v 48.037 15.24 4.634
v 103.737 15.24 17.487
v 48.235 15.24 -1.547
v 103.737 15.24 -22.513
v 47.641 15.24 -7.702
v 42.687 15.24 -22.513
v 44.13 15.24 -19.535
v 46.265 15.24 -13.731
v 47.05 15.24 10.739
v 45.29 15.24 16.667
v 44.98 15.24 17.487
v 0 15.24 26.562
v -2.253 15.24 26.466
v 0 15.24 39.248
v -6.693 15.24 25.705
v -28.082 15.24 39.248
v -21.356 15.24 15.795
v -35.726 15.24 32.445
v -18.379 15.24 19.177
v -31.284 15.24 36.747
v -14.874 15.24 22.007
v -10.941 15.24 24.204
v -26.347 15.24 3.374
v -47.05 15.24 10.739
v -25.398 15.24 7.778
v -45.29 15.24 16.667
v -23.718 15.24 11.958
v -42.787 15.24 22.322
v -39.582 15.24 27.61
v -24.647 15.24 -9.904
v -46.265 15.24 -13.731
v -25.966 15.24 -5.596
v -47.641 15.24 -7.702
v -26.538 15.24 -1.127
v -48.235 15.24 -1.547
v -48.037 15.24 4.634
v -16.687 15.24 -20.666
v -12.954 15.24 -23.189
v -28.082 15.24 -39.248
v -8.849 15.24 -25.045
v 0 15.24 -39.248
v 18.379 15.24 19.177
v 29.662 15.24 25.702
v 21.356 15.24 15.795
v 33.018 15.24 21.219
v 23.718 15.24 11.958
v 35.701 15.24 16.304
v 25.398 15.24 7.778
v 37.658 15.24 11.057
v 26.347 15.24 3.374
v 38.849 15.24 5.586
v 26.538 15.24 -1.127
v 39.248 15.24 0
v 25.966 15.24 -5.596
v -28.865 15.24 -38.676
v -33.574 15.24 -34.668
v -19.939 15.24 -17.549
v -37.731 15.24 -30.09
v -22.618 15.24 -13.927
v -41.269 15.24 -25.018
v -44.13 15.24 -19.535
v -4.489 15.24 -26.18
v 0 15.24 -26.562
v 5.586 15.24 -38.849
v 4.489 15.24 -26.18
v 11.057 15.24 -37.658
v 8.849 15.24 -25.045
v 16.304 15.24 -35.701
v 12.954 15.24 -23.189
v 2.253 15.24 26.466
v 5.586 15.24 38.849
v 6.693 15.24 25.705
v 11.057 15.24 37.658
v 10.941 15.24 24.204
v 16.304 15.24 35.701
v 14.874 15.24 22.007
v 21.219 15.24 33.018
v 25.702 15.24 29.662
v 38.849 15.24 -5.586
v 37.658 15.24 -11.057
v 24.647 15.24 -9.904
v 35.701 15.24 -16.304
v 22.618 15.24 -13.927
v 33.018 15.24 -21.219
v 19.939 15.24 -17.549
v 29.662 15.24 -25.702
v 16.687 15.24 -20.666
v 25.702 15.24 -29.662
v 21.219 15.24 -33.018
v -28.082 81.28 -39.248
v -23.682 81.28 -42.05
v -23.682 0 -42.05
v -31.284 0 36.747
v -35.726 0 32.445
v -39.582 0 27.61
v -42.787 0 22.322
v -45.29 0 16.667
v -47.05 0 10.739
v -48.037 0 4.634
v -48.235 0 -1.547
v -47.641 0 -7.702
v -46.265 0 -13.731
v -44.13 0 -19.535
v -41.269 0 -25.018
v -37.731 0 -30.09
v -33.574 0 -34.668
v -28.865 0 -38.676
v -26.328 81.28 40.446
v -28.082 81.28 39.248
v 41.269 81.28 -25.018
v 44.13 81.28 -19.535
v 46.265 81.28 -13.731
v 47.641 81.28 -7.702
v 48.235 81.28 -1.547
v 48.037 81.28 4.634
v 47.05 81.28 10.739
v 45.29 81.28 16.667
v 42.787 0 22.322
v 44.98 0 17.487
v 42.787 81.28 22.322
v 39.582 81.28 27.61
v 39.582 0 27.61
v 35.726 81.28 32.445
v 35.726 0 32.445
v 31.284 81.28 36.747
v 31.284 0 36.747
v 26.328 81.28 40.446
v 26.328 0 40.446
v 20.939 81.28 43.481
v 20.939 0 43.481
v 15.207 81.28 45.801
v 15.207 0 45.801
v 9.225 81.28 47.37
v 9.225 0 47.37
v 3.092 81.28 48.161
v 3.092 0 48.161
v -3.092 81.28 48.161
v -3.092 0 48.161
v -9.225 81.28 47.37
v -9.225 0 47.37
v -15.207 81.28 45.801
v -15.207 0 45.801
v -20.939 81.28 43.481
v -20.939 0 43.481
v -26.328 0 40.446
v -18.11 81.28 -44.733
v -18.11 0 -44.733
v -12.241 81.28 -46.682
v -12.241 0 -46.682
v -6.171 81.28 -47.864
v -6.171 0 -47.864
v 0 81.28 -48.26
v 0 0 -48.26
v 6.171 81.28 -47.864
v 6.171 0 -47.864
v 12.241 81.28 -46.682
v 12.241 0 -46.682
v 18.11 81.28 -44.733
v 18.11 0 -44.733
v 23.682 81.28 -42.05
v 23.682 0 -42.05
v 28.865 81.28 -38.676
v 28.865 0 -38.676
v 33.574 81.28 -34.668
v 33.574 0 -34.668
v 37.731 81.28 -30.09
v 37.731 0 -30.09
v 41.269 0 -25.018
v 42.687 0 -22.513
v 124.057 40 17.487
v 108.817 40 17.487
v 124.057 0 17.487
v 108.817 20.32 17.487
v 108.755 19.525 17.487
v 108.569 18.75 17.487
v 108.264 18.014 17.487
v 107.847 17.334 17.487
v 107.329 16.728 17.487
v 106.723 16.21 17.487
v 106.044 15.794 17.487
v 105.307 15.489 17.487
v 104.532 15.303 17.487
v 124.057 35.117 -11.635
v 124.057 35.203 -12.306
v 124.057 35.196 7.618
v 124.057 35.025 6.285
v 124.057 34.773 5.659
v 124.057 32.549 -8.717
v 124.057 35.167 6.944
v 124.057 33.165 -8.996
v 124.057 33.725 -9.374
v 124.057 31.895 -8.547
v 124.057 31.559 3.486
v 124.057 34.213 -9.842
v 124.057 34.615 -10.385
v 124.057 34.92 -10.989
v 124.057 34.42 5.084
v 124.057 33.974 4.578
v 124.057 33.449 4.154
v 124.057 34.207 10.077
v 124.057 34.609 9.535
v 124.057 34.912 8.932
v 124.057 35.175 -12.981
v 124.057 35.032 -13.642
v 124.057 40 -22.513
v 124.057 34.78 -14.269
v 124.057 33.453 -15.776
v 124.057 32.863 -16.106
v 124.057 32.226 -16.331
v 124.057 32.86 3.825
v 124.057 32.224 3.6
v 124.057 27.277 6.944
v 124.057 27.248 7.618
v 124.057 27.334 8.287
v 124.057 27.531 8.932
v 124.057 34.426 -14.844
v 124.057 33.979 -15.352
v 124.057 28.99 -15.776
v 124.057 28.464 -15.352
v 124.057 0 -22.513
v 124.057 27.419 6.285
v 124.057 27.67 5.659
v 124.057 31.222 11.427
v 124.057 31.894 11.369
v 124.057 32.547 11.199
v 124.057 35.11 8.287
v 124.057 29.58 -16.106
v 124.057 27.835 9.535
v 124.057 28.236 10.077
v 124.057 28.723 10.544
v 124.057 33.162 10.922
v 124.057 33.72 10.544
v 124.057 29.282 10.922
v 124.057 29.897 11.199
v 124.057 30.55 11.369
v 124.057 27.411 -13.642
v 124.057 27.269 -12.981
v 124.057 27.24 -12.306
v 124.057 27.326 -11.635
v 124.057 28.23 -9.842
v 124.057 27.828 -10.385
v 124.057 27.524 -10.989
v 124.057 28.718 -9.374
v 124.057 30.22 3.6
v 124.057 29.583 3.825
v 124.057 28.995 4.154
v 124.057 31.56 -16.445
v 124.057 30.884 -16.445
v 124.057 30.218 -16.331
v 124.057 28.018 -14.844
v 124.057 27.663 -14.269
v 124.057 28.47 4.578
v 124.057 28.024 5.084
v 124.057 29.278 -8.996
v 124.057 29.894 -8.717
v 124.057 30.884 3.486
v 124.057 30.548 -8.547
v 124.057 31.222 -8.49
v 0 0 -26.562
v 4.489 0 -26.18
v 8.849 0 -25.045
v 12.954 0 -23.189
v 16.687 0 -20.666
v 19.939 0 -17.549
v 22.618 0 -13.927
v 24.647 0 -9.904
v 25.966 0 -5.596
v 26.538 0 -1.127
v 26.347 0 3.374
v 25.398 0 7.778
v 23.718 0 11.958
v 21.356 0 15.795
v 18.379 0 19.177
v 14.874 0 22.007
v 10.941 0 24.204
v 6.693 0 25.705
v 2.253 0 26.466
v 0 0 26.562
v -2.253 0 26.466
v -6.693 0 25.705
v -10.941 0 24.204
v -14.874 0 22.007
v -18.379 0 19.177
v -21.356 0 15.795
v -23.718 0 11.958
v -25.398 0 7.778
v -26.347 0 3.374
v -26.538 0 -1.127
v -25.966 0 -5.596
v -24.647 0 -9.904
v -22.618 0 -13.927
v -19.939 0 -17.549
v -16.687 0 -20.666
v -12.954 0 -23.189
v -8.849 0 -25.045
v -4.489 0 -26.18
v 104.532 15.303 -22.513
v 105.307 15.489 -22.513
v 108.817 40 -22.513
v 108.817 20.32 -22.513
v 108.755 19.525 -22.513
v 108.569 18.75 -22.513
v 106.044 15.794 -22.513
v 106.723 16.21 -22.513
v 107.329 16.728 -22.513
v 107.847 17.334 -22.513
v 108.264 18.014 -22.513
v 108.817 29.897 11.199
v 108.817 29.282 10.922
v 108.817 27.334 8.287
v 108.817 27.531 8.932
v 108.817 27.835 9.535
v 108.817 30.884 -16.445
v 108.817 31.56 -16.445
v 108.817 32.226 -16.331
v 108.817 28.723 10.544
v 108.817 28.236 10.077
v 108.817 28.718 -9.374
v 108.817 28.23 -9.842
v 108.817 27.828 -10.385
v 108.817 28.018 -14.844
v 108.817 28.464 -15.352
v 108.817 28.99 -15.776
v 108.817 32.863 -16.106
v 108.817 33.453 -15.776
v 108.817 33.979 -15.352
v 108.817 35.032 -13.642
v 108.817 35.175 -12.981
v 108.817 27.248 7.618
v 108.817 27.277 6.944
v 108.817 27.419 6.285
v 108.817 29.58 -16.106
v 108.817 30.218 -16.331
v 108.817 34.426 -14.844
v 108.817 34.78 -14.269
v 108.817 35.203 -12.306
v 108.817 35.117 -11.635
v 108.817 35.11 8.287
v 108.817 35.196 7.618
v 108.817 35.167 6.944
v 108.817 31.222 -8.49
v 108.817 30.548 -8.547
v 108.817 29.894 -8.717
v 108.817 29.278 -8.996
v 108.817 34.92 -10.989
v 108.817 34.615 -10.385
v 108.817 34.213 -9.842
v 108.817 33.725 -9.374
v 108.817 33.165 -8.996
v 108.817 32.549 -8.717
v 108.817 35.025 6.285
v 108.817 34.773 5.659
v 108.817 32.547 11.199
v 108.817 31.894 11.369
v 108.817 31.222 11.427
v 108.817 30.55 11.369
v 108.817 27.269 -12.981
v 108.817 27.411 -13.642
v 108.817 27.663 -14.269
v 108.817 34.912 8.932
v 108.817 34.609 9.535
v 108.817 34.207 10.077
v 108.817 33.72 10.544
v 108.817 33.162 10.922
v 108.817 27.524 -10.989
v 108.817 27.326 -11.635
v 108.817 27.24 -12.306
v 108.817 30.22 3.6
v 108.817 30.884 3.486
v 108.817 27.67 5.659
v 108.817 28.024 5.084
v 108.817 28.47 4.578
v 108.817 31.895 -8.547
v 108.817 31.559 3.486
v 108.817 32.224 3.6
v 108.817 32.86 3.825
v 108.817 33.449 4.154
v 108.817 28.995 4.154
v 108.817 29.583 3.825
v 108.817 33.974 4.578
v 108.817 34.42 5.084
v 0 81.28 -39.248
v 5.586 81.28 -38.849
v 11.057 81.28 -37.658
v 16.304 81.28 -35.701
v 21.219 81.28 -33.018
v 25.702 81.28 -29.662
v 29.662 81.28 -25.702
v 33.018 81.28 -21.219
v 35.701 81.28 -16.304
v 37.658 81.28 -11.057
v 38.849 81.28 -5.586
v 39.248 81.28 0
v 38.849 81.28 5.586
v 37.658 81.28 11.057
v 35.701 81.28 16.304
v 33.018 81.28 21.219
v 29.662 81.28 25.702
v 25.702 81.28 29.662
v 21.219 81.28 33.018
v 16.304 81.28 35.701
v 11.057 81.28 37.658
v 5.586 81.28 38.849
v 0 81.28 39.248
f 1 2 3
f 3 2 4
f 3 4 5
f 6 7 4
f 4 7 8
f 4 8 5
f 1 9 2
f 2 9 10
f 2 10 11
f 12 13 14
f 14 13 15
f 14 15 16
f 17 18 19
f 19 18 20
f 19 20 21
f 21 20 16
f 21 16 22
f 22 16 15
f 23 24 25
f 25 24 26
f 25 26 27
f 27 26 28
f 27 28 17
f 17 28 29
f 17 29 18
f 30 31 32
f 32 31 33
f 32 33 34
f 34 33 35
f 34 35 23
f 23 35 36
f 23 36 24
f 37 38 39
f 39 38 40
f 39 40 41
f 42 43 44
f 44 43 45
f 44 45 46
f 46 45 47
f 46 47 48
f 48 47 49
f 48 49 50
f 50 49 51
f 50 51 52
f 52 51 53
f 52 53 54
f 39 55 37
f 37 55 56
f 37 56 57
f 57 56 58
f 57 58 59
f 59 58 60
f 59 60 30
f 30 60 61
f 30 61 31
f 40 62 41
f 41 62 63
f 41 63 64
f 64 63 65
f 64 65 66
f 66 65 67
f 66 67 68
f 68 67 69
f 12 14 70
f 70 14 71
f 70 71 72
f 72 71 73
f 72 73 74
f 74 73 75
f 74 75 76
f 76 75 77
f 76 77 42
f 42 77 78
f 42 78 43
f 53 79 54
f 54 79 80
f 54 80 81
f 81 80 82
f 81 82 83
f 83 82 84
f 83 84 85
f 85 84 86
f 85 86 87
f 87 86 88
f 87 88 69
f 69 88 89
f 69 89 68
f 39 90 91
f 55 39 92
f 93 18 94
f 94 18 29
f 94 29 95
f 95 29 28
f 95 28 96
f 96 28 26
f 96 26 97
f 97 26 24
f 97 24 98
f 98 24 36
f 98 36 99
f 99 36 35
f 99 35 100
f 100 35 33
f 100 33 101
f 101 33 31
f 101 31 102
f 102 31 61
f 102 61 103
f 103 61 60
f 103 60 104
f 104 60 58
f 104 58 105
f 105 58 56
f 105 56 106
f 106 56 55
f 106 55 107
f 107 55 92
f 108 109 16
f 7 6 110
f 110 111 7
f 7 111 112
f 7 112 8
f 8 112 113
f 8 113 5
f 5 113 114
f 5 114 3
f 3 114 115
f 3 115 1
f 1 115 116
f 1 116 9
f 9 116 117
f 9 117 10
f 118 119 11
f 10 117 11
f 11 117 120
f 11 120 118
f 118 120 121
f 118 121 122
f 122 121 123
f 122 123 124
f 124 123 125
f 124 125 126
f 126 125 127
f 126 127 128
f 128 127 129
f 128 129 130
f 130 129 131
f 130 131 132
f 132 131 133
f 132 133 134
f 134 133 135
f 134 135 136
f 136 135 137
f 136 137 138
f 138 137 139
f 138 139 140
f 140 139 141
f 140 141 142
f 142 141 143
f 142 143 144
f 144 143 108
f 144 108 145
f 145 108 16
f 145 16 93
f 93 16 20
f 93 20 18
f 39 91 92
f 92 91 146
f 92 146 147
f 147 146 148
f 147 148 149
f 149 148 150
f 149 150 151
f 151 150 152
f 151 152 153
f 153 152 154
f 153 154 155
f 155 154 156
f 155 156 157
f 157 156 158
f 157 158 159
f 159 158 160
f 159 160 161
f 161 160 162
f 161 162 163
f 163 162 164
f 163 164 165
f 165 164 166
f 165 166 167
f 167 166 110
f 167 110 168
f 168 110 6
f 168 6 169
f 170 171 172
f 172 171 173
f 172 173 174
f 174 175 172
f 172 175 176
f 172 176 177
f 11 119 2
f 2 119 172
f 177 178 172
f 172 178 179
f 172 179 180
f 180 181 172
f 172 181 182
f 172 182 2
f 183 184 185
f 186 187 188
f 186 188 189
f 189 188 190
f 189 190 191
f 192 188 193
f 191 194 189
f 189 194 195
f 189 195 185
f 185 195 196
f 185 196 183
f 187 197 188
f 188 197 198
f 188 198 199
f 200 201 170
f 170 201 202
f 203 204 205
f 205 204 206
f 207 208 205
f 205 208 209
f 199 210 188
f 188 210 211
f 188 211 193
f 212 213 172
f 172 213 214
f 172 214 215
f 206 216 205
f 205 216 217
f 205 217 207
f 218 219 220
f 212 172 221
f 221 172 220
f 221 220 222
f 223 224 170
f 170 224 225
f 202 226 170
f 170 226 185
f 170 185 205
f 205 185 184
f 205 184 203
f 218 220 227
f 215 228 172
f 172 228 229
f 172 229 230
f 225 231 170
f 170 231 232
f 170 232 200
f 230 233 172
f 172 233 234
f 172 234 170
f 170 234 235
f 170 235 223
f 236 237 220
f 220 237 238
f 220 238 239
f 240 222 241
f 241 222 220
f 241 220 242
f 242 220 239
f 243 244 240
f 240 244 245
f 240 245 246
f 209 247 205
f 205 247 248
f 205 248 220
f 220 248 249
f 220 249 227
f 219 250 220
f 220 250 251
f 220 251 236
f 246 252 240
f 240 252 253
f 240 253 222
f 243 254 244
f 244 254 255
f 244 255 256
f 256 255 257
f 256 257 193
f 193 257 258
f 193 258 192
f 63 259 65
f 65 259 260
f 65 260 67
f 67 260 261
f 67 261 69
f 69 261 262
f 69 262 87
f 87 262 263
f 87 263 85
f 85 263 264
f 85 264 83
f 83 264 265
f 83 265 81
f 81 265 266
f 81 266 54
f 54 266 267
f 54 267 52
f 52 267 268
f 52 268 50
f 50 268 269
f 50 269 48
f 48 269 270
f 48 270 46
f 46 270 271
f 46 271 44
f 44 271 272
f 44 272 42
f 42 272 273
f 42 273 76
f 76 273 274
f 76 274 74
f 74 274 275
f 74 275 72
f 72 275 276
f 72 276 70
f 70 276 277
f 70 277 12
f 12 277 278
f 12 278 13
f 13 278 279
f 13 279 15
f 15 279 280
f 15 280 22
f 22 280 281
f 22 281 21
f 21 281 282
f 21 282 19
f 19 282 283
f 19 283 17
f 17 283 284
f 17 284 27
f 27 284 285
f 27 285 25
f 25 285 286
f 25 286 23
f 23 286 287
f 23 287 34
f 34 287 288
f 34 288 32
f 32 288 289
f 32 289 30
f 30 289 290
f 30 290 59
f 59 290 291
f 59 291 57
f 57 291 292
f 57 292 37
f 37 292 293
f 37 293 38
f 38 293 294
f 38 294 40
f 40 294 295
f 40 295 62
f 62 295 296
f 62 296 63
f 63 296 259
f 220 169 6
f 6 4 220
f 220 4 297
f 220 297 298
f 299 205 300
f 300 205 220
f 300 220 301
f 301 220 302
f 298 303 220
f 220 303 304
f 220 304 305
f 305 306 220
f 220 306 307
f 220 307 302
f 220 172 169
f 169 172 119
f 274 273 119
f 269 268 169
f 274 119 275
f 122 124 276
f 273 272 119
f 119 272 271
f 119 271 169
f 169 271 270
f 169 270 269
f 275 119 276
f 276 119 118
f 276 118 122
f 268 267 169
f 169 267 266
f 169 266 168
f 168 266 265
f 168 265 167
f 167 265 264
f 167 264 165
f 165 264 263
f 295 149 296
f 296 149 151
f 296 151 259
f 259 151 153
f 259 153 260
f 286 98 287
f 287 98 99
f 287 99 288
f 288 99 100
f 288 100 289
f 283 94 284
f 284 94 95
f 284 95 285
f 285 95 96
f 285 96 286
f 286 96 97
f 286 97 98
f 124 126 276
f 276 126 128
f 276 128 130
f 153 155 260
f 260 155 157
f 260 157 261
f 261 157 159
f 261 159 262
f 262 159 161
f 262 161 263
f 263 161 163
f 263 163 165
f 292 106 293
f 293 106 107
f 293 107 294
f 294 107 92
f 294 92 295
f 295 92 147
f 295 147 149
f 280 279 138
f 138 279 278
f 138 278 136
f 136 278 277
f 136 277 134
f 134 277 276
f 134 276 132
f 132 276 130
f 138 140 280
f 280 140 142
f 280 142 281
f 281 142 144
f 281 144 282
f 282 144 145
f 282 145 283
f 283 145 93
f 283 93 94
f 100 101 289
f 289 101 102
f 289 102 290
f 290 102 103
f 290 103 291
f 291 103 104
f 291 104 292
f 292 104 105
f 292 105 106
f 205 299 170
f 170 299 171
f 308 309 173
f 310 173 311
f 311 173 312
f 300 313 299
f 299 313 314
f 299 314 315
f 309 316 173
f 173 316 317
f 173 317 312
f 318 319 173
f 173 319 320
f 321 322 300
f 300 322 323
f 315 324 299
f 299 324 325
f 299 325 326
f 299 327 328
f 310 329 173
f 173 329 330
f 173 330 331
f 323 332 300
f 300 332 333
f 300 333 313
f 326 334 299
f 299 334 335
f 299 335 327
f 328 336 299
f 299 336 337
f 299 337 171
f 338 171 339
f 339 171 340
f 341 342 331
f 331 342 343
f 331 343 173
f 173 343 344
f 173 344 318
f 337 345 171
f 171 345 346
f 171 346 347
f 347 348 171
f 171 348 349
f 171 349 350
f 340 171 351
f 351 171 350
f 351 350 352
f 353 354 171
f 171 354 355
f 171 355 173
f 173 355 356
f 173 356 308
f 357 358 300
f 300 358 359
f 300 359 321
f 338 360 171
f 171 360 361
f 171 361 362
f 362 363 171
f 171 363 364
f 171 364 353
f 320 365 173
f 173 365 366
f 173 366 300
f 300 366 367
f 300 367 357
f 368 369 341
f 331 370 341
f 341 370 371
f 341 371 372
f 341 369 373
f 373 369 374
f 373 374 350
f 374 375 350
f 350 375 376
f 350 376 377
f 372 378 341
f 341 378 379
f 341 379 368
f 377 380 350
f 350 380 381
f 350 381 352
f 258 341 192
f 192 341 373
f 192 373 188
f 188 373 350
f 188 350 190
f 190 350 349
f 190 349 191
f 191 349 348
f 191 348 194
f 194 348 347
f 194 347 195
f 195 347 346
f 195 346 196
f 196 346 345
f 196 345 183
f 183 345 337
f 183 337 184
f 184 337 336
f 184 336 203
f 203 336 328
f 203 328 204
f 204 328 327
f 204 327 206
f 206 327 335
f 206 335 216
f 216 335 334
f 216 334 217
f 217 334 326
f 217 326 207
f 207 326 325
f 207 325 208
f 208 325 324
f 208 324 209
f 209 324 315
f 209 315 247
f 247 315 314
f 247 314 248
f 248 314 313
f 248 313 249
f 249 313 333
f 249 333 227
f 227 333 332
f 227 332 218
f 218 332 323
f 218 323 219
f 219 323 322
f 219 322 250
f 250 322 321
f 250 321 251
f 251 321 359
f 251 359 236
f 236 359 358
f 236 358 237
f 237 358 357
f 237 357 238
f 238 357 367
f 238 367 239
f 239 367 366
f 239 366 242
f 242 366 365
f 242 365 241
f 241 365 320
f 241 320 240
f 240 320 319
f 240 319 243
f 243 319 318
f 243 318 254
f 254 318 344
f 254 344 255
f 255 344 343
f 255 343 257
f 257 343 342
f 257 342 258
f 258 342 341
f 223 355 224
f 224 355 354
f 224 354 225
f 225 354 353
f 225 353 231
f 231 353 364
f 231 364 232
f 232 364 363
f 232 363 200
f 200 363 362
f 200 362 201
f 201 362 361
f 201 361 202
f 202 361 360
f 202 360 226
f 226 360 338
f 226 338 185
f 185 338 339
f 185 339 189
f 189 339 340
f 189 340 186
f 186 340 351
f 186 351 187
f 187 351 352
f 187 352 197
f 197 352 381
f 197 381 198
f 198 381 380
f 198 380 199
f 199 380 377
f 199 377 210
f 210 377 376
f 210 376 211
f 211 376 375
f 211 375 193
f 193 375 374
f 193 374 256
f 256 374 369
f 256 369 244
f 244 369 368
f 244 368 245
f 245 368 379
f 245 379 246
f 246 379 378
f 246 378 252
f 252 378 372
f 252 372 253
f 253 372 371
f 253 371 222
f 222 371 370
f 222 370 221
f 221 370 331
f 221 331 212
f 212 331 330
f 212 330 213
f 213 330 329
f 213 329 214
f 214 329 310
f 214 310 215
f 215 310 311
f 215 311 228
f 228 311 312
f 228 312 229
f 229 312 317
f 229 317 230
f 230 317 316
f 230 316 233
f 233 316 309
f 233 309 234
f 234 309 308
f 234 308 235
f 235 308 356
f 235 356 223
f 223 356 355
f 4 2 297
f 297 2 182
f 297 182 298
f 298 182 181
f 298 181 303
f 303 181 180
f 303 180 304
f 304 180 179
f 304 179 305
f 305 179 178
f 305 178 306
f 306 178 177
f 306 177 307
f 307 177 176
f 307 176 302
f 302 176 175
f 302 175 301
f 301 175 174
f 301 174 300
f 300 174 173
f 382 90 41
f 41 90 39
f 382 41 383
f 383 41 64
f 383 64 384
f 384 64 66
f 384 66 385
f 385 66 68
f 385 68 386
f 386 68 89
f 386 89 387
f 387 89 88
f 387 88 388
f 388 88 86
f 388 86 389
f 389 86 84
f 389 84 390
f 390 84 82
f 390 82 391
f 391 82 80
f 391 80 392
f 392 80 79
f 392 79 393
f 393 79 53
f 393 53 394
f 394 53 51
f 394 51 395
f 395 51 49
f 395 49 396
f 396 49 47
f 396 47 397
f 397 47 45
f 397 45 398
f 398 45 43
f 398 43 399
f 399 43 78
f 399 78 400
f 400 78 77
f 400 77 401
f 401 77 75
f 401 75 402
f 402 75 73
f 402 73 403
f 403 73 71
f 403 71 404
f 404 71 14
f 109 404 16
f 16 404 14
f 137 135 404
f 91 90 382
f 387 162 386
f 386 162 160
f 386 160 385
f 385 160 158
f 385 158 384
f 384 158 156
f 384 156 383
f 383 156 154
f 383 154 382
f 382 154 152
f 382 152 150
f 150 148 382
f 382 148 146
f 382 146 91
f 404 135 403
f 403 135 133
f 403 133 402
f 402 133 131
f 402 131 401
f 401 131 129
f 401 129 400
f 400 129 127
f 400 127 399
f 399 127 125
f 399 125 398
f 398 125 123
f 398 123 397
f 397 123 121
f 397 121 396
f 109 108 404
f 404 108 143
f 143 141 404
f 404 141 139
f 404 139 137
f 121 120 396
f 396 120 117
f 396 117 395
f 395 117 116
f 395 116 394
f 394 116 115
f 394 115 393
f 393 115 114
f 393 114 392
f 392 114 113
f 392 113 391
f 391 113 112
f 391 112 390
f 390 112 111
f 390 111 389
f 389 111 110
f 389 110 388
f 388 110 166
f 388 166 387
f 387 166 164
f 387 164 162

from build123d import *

# Parameters (mm, degrees)
SKETCH1_R           = 48.26
SKETCH1_R_2         = 26.56205
SKETCH1_W           = 81.370000074
SKETCH1_H           = 40
BOSS_EXTRUDE2_DEPTH = 15.24
SKETCH2_W           = 15.24
SKETCH2_H           = 24.76
BOSS_EXTRUDE3_DEPTH = 40
SKETCH3_R           = 3.9773733
SKETCH3_R_2         = 3.985133
CUT_EXTRUDE1_DEPTH  = 170.12215531
FILLET1_R           = 5.08
BOSS_EXTRUDE4_DEPTH = 66.04


with BuildPart() as part:
    # Sketch1 → Boss-Extrude2 (new body)
    # profile 1 of 2: a face of its own
    with BuildSketch(Plane(origin=(0, 0, 0), x_dir=(1, 0, 0), z_dir=(0, 1, 0))):
        Circle(SKETCH1_R)
        with Locations(Location((0, 0, 0), (0, 0, 90))):
            Circle(SKETCH1_R_2, mode=Mode.SUBTRACT)
    # profile 2 of 2: a face of its own
    with BuildSketch(Plane(origin=(0, 0, 0), x_dir=(1, 0, 0), z_dir=(0, 1, 0))):
        with Locations((83.372292456, 2.512722314)):
            Rectangle(SKETCH1_W, SKETCH1_H)
    extrude(amount=BOSS_EXTRUDE2_DEPTH)

    # Sketch2 → Boss-Extrude3 (add)
    with BuildSketch(Plane(origin=(0, 0, -22.512722314), x_dir=(-1, 0, 0), z_dir=(0, 0, -1))):
        with Locations((-116.437292493, 27.62)):
            Rectangle(SKETCH2_W, SKETCH2_H)
    extrude(amount=-BOSS_EXTRUDE3_DEPTH)

    # Sketch3 → Cut-Extrude1 (cut, through all)
    with BuildSketch(Plane.ZY.offset(-108.817292493)):
        with Locations((7.449197686, 31.22176)):
            Circle(SKETCH3_R)
        with Locations((-12.474642314, 31.22176)):
            Circle(SKETCH3_R_2)
    extrude(amount=-CUT_EXTRUDE1_DEPTH, mode=Mode.SUBTRACT)

    # Fillet1
    fillet1_edges = [part.edges().sort_by_distance(p)[0] for p in [
        (108.817292493, 15.24, -2.512722314),
    ]]
    fillet(fillet1_edges, radius=FILLET1_R)

    # Sketch5 → Boss-Extrude4 (add)
    with BuildSketch(Plane(origin=(0, 15.24, 0), x_dir=(1, 0, 0), z_dir=(0, 1, 0))):
        with BuildLine():
            ThreePointArc((0, 39.248127244), (39.248127244, 0), (0, -39.248127244))
            Line((0, -39.248127244), (-28.082238298, -39.248127244))
            ThreePointArc((-28.082238298, -39.248127244), (22.065570237, -42.920137583), (48.26, 0))
            ThreePointArc((48.26, 0), (22.065570237, 42.920137583), (-28.082238298, 39.248127244))
            Line((-28.082238298, 39.248127244), (0, 39.248127244))
        make_face()
    extrude(amount=BOSS_EXTRUDE4_DEPTH)


solid = part.part
